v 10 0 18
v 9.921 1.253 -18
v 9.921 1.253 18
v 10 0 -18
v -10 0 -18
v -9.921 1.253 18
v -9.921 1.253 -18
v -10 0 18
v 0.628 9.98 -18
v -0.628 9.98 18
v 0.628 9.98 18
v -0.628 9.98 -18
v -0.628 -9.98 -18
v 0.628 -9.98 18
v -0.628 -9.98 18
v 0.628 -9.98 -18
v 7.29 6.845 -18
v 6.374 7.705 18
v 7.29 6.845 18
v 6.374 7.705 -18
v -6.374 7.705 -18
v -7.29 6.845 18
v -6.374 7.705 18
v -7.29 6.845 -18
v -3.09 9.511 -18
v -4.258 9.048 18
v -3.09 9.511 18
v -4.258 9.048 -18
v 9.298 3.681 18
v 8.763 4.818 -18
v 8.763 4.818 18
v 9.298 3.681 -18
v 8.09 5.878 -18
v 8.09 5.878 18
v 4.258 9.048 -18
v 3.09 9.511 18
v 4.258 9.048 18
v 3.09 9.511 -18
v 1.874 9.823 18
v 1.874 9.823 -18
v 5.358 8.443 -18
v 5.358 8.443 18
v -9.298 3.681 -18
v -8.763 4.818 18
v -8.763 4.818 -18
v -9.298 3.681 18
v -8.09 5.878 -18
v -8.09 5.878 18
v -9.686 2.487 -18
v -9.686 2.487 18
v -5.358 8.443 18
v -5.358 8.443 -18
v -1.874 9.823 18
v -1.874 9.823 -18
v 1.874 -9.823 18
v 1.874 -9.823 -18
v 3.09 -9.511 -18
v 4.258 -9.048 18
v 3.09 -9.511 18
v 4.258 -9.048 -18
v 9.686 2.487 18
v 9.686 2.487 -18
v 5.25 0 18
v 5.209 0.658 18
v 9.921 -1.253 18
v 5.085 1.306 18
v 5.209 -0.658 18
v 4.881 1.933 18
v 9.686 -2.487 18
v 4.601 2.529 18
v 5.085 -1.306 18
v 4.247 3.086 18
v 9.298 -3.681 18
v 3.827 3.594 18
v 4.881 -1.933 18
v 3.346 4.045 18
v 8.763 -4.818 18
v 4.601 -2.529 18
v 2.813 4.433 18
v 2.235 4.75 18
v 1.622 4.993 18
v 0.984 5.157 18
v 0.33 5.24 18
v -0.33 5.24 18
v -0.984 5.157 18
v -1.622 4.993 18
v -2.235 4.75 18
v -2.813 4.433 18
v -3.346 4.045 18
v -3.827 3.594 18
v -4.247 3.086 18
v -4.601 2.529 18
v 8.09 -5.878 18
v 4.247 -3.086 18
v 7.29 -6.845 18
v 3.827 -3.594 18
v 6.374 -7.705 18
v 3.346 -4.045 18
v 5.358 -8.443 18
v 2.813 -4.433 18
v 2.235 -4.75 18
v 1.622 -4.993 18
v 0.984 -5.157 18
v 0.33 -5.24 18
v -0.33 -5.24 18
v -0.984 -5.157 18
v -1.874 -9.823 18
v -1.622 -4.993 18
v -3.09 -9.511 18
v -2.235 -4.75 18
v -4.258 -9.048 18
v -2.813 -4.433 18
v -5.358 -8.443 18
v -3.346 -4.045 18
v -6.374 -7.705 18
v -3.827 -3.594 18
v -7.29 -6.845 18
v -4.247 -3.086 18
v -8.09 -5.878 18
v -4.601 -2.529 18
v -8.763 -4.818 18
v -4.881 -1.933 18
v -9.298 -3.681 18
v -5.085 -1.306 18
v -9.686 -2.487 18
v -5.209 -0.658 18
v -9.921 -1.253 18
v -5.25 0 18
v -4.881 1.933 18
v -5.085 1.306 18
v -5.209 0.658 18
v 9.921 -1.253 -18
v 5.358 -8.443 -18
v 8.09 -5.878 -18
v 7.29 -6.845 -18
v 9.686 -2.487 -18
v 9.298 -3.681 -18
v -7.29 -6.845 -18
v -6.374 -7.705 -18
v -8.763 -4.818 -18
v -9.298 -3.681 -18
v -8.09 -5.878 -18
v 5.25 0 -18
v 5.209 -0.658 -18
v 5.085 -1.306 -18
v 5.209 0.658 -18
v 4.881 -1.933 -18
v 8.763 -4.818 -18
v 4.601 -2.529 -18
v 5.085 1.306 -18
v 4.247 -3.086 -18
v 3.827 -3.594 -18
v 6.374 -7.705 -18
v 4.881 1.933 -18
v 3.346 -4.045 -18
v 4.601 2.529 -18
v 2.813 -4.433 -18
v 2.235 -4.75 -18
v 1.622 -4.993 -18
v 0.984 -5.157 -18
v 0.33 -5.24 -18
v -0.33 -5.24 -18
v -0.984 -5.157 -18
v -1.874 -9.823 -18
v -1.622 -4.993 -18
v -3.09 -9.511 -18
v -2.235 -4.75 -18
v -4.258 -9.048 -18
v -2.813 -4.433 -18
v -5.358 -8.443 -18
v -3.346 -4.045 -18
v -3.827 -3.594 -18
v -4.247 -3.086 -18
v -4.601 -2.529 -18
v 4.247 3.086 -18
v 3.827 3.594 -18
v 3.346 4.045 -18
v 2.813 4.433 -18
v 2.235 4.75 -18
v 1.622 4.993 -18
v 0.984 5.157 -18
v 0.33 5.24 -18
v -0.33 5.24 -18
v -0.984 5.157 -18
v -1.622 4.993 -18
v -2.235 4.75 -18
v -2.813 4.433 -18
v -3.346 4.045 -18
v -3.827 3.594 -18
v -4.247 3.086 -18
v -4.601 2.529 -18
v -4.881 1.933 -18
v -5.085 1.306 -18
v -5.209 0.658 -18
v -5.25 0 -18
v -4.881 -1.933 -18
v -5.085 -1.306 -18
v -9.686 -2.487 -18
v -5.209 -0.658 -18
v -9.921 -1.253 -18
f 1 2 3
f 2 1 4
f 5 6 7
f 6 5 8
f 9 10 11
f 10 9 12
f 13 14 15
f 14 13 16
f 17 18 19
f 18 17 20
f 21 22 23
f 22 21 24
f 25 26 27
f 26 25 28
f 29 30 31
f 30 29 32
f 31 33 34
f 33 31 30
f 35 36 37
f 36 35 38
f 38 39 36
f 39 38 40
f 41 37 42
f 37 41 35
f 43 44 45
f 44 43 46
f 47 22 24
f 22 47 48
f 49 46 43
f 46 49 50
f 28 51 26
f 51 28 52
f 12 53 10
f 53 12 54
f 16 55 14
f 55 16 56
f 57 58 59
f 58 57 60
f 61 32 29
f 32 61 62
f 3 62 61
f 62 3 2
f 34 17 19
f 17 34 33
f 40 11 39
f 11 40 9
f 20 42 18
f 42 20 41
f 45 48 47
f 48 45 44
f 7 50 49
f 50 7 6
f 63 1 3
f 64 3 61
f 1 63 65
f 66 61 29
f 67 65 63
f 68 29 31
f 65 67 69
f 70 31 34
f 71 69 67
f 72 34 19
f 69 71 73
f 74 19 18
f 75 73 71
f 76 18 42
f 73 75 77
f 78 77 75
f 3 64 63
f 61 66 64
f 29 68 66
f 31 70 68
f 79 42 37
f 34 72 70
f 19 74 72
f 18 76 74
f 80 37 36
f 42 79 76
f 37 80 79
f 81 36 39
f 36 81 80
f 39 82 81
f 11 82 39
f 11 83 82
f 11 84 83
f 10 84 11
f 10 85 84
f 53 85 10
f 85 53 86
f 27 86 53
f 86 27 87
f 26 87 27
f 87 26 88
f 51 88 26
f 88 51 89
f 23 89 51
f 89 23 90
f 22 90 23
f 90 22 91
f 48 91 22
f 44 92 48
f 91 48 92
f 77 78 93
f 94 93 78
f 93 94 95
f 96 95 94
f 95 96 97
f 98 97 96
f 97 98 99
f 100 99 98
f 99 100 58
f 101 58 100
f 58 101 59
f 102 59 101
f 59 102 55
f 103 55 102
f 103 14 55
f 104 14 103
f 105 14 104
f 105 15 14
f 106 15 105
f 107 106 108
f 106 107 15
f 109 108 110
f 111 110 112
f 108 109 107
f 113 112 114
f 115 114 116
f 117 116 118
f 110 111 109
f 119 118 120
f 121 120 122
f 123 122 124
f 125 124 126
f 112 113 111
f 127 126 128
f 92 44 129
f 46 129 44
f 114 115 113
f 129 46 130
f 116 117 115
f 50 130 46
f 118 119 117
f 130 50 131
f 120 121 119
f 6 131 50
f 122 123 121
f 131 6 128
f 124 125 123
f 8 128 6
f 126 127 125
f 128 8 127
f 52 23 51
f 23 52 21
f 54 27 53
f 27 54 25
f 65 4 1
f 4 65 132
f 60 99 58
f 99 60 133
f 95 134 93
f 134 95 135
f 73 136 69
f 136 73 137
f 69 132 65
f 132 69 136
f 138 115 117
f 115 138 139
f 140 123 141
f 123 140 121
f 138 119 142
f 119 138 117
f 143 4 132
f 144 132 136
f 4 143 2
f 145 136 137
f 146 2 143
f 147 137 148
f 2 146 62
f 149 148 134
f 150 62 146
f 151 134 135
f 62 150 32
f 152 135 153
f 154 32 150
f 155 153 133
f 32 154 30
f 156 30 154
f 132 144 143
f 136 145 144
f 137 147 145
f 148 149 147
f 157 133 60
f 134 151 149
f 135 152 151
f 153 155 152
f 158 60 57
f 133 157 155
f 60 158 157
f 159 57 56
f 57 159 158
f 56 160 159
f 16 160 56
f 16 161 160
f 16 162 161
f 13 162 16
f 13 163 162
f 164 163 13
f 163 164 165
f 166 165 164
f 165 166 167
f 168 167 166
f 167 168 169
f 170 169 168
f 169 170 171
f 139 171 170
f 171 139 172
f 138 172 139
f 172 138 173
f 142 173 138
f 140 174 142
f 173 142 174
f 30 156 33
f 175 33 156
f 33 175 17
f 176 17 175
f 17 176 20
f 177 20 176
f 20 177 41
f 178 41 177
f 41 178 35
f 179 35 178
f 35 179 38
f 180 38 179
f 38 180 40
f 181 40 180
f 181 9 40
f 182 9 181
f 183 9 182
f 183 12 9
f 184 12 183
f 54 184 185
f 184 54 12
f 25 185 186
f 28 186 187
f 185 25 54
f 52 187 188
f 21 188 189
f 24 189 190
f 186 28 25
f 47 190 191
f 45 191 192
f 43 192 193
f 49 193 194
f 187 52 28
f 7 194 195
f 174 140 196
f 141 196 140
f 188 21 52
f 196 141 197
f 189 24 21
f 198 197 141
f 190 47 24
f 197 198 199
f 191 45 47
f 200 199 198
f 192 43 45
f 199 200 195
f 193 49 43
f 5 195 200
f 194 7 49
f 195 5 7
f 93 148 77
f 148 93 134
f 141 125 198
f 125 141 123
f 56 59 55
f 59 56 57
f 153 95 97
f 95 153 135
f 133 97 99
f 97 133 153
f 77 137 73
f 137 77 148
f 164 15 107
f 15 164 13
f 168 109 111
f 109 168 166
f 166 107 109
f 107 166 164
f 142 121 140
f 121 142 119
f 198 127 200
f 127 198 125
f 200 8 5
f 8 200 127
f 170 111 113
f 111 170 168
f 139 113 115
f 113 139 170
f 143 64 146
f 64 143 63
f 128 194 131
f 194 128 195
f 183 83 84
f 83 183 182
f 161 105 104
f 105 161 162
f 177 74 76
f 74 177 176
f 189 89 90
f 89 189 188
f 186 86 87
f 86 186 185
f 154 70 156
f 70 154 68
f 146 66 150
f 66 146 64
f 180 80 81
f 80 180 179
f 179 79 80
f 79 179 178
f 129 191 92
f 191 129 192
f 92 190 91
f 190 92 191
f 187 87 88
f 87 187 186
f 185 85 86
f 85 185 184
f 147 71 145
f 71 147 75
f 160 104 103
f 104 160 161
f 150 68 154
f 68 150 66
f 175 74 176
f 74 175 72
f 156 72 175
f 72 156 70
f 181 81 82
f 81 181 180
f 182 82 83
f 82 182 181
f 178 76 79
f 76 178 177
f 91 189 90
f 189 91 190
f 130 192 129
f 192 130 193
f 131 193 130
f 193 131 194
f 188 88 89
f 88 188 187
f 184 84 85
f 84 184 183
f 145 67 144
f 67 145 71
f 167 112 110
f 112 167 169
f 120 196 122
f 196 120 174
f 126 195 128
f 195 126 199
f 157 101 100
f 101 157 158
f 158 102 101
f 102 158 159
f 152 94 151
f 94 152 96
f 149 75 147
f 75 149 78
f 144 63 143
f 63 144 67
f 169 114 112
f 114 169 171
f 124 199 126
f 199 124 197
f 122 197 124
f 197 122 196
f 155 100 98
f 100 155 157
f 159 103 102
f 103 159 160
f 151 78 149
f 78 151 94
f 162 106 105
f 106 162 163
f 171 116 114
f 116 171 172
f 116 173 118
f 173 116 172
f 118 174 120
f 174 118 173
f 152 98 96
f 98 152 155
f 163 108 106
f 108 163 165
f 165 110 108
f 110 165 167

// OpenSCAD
$fn = 50;


difference() {
	union() {
		translate(v = [0, 0, -18.0000000000]) {
			cylinder(h = 36, r = 10.0000000000);
		}
	}
	union() {
		translate(v = [0, 0, -100.0000000000]) {
			cylinder(h = 200, r = 5.2500000000);
		}
	}
}
